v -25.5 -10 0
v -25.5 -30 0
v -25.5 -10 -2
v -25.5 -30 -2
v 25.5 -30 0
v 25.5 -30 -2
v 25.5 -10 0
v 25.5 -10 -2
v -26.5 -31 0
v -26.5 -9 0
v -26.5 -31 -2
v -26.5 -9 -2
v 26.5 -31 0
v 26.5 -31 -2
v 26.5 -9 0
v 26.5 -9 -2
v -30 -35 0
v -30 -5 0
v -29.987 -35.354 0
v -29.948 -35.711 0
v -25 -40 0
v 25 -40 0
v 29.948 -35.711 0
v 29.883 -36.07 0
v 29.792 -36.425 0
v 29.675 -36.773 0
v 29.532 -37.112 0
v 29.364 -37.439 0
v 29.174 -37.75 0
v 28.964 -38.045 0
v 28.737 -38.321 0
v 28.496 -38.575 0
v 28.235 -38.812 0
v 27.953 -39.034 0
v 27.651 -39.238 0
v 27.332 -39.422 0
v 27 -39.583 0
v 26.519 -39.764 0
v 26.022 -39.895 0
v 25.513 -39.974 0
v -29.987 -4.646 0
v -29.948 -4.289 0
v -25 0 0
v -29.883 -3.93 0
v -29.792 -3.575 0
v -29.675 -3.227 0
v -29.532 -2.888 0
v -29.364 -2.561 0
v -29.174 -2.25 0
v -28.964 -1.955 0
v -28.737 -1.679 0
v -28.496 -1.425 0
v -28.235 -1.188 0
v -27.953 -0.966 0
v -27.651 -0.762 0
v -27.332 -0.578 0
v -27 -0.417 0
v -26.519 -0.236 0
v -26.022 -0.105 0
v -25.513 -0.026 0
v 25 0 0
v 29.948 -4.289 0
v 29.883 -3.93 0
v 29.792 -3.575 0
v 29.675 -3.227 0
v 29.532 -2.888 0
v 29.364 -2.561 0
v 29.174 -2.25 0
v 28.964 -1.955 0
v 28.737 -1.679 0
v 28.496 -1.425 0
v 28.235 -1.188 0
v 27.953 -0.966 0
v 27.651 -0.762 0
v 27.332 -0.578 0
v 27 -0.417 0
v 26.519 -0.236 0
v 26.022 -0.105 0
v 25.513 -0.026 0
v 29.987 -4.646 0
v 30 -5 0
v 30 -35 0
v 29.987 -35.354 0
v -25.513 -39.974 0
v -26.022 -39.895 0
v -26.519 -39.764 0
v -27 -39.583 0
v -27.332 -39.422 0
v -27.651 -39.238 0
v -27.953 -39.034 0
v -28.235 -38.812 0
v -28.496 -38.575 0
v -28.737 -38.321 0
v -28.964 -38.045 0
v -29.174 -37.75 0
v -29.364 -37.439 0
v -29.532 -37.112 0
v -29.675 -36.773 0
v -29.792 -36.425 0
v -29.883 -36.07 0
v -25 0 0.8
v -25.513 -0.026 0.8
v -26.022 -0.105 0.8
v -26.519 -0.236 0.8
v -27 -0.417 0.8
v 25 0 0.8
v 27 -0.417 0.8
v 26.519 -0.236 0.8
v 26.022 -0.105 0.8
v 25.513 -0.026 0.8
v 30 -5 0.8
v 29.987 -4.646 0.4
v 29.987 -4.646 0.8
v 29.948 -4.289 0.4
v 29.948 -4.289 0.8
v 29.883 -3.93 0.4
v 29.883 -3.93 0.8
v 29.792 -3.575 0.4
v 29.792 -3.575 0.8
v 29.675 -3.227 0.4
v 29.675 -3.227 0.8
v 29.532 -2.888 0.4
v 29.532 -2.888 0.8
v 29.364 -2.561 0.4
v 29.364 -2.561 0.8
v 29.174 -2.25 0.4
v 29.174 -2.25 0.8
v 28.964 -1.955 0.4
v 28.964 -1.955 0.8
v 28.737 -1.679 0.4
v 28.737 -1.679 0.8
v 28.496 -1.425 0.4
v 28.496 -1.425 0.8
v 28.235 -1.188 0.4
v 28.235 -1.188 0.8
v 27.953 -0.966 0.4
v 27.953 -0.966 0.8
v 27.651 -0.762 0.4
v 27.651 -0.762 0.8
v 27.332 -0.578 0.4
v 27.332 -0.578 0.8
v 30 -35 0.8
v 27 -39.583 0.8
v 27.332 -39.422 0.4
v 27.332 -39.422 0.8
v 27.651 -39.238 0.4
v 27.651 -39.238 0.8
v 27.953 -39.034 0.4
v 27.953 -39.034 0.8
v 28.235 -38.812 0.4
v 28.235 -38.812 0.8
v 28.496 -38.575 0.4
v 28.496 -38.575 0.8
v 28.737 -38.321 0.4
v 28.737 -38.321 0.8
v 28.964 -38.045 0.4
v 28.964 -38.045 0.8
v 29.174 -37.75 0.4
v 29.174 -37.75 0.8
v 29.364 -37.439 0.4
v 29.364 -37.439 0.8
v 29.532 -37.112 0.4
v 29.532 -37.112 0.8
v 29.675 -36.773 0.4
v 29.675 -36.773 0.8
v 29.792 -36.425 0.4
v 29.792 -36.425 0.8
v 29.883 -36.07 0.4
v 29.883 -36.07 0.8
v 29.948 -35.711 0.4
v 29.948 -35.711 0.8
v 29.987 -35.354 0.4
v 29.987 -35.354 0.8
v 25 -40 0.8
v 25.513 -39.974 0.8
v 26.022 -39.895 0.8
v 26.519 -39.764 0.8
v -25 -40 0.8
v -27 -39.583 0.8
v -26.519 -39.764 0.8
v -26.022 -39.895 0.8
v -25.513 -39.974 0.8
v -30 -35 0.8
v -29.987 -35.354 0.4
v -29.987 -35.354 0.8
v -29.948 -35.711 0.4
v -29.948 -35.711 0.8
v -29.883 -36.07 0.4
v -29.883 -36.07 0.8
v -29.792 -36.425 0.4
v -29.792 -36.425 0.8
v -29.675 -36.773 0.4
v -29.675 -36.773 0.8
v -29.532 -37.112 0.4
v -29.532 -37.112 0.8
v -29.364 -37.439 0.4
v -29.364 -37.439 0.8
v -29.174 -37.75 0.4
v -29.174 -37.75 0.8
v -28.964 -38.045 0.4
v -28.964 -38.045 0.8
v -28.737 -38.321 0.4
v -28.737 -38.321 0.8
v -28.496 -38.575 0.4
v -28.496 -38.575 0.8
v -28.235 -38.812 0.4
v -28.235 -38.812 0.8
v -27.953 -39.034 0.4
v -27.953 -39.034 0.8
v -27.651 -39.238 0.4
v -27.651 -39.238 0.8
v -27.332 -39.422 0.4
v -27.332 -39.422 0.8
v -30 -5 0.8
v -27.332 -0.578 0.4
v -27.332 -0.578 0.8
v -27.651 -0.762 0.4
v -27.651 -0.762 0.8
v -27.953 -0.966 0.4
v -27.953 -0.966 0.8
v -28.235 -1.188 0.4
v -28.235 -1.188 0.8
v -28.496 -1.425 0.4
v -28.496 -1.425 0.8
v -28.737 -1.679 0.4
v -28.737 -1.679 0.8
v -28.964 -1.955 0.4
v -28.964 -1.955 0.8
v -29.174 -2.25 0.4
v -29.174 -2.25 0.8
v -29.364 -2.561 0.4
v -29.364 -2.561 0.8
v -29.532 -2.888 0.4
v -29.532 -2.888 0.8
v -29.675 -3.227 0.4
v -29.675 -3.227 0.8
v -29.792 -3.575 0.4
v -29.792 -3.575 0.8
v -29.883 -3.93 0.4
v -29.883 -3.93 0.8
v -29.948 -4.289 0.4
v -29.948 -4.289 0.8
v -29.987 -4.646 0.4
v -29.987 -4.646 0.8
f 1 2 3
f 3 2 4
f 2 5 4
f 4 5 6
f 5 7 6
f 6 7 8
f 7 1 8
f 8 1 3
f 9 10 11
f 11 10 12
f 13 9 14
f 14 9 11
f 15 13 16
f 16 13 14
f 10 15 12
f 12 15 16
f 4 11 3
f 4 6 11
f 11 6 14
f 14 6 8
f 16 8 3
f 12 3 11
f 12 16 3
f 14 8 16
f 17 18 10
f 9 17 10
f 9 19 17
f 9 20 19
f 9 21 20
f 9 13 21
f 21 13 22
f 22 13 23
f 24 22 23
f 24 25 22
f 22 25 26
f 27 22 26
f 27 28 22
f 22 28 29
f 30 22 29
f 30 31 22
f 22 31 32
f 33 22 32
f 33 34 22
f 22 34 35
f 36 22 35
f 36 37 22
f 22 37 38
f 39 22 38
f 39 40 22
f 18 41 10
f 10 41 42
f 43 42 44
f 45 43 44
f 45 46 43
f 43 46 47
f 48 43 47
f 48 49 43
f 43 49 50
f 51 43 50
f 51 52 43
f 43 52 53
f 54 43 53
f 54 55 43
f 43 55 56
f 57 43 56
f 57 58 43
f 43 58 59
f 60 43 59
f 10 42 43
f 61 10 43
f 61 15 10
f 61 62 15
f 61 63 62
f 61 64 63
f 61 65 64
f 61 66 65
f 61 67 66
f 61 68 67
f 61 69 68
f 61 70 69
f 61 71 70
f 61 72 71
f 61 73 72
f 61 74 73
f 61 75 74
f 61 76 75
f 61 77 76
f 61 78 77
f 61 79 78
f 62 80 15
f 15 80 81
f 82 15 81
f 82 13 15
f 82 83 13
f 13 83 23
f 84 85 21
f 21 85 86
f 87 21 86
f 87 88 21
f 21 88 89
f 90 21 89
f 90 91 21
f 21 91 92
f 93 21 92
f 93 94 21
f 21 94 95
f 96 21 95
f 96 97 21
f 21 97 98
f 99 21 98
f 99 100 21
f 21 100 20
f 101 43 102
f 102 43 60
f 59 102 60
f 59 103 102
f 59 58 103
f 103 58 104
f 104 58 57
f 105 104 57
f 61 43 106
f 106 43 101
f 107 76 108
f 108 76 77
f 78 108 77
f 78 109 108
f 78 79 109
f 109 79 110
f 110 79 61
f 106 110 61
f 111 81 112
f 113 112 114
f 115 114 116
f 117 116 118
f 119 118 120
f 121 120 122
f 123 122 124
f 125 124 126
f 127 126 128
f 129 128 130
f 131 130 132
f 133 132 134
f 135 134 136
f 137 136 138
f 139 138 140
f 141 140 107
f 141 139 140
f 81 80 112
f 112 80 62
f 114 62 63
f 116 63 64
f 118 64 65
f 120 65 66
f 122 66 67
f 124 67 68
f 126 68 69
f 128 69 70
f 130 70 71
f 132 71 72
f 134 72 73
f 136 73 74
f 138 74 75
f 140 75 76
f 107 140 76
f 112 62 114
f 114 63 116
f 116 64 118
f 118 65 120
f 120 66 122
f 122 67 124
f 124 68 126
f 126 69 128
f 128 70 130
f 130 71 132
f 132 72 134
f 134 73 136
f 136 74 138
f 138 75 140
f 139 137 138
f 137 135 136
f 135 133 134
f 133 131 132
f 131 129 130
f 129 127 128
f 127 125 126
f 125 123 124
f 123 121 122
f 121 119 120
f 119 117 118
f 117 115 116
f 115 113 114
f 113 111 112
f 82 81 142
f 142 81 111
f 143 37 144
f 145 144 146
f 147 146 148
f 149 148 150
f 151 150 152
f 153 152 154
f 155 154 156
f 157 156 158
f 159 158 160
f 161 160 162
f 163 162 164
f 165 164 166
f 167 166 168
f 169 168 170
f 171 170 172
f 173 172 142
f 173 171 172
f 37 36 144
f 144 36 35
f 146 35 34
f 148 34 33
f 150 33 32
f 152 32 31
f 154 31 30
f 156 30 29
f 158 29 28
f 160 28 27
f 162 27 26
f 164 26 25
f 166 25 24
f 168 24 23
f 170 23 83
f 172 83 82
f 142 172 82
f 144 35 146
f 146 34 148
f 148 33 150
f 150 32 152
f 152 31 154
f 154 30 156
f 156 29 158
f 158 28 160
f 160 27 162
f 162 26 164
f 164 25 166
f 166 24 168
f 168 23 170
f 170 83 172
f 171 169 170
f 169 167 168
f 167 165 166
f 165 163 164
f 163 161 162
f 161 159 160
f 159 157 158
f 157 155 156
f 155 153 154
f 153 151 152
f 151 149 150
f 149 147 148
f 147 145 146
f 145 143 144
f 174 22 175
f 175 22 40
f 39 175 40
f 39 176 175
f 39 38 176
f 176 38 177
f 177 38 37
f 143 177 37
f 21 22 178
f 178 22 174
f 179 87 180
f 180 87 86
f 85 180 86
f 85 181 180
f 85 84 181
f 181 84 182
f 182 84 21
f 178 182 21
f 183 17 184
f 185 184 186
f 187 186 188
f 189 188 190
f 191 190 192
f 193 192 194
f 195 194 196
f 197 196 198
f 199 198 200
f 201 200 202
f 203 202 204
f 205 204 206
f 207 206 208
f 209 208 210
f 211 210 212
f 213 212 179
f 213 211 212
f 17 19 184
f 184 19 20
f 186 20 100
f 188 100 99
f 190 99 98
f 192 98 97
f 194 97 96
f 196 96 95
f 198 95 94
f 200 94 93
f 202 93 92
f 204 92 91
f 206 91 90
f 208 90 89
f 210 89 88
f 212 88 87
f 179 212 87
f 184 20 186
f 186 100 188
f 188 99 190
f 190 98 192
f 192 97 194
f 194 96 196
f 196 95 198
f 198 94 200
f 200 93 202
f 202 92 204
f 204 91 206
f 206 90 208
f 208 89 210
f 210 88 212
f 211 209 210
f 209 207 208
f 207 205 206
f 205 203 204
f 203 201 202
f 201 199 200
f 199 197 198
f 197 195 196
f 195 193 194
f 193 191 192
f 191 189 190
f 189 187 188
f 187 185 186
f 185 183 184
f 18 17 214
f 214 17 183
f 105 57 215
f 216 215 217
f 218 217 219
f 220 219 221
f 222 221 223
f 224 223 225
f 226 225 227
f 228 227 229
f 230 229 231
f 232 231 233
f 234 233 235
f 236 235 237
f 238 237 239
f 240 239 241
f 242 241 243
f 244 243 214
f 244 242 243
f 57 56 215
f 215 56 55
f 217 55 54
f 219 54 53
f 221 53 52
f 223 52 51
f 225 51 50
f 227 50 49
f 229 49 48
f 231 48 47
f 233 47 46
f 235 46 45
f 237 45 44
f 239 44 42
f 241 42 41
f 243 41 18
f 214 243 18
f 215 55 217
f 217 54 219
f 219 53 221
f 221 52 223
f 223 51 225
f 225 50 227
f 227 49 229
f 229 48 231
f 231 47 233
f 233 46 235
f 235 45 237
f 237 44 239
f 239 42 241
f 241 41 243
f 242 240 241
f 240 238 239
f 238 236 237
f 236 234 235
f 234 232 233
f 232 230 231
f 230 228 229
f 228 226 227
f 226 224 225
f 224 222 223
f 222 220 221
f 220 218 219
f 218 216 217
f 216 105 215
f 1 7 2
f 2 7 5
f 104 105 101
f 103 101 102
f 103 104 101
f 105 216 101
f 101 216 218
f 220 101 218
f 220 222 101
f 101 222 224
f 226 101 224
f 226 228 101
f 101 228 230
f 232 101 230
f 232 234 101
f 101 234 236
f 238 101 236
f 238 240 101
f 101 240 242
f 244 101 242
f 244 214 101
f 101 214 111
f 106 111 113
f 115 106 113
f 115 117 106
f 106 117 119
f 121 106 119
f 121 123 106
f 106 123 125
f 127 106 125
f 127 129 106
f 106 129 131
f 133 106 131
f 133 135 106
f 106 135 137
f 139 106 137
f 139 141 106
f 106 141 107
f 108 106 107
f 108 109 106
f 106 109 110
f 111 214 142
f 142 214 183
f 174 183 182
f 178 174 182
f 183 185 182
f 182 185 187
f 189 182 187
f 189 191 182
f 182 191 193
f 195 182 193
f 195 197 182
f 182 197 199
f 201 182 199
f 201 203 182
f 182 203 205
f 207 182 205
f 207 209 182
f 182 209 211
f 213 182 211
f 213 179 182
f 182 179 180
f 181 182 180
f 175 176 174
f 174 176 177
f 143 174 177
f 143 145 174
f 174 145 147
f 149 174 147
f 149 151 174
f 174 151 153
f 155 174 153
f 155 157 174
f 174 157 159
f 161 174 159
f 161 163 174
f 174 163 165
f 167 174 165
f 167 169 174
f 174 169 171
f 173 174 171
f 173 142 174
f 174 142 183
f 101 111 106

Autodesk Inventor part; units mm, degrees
ref_plane "YZ Plane" through (0, 0, 0) normal (1, 0, 0) x (0, 1, 0)
ref_plane "XZ Plane" through (0, 0, 0) normal (0, 1, 0) x (-1, 0, 0)
ref_plane "XY Plane" through (0, 0, 0) normal (0, 0, 1) x (1, 0, 0)
sketch "Sketch1" plane through (0, 0, 0) normal (0, 0, 1) x (1, 0, 0)
  spline S0 degree 3 poles (-30, -5) (-30, -4.3586) (-29.8694, -3.6802) (-29.3471, -2.4395) (-28.9555, -1.8763) (-28.0866, -1.0236) (-27.5672, -0.665) (-27, -0.4174) knots 1.621626 1.621626 1.621626 1.621626 1.814042 1.814042 2.006457 2.006457 2.182648 2.182648 2.182648 2.182648 projected
  line L0 (-25, 0) -> (25, 0) projected
  spline S1 degree 3 poles (27, -0.4174) (27.5672, -0.665) (28.0866, -1.0236) (28.9555, -1.8763) (29.3471, -2.4395) (29.8694, -3.6802) (30, -4.3586) (30, -5) knots -0.561022 -0.561022 -0.561022 -0.561022 -0.384831 -0.384831 -0.192415 -0.192415 0 0 0 0 projected
  line L1 (30, -5) -> (30, -35) projected
  spline S2 degree 3 poles (30, -35) (30, -35.6414) (29.8694, -36.3198) (29.3471, -37.5605) (28.9555, -38.1237) (28.0866, -38.9764) (27.5672, -39.335) (27, -39.5826) knots 0 0 0 0 0.192415 0.192415 0.384831 0.384831 0.561022 0.561022 0.561022 0.561022 projected
  line L2 (25, -40) -> (-25, -40) projected
  line L3 (-30, -35) -> (-30, -5) projected
  spline S3 degree 3 poles (-27, -39.5826) (-27.5672, -39.335) (-28.0866, -38.9764) (-28.9555, -38.1237) (-29.3471, -37.5605) (-29.8694, -36.3198) (-30, -35.6414) (-30, -35) knots 1.060605 1.060605 1.060605 1.060605 1.236796 1.236796 1.429211 1.429211 1.621626 1.621626 1.621626 1.621626 projected
  arc A0 (-25, 0) -> (-27, -0.4174) centre (-25, -5) ccw projected
  arc A1 (27, -0.4174) -> (25, 0) centre (25, -5) ccw projected
  arc A2 (25, -40) -> (27, -39.5826) centre (25, -35) ccw projected
  arc A3 (-27, -39.5826) -> (-25, -40) centre (-25, -35) ccw projected
  point P0 (0, 0)
  dimension "d8" = 60
  dimension "d9" = 40
extrude "Extrusion1" add sketch "Sketch1" along normal blind 0.8
sketch "Sketch2" plane through (0, 0, 0) normal (0, 0, -1) x (-1, 0, 0)
  line L0 (-25.5, -10) -> (25.5, -10)
  line L1 (25.5, -10) -> (25.5, -30)
  line L2 (25.5, -30) -> (-25.5, -30)
  line L3 (-25.5, -30) -> (-25.5, -10)
  line L4 (-25.5, -10) -> (25.5, -30) construction
  line L5 (25.5, -10) -> (-25.5, -30) construction
  line L6 (-26.5, -9) -> (26.5, -9)
  line L7 (26.5, -9) -> (26.5, -31)
  line L8 (26.5, -31) -> (-26.5, -31)
  line L9 (-26.5, -31) -> (-26.5, -9)
  line L10 (-26.5, -9) -> (26.5, -31) construction
  line L11 (26.5, -9) -> (-26.5, -31) construction
  point P0 (0, 0)
  point P1 (0, -20)
  point P2 (0, -20)
  dimension "d2" = 51
  dimension "d3" = 20
  dimension "d4" = 53
  dimension "d5" = 22
extrude "Extrusion2" add sketch "Sketch2" along normal blind 2
properties part number "obudowa - budzik v7 plexi" material "Glass"
